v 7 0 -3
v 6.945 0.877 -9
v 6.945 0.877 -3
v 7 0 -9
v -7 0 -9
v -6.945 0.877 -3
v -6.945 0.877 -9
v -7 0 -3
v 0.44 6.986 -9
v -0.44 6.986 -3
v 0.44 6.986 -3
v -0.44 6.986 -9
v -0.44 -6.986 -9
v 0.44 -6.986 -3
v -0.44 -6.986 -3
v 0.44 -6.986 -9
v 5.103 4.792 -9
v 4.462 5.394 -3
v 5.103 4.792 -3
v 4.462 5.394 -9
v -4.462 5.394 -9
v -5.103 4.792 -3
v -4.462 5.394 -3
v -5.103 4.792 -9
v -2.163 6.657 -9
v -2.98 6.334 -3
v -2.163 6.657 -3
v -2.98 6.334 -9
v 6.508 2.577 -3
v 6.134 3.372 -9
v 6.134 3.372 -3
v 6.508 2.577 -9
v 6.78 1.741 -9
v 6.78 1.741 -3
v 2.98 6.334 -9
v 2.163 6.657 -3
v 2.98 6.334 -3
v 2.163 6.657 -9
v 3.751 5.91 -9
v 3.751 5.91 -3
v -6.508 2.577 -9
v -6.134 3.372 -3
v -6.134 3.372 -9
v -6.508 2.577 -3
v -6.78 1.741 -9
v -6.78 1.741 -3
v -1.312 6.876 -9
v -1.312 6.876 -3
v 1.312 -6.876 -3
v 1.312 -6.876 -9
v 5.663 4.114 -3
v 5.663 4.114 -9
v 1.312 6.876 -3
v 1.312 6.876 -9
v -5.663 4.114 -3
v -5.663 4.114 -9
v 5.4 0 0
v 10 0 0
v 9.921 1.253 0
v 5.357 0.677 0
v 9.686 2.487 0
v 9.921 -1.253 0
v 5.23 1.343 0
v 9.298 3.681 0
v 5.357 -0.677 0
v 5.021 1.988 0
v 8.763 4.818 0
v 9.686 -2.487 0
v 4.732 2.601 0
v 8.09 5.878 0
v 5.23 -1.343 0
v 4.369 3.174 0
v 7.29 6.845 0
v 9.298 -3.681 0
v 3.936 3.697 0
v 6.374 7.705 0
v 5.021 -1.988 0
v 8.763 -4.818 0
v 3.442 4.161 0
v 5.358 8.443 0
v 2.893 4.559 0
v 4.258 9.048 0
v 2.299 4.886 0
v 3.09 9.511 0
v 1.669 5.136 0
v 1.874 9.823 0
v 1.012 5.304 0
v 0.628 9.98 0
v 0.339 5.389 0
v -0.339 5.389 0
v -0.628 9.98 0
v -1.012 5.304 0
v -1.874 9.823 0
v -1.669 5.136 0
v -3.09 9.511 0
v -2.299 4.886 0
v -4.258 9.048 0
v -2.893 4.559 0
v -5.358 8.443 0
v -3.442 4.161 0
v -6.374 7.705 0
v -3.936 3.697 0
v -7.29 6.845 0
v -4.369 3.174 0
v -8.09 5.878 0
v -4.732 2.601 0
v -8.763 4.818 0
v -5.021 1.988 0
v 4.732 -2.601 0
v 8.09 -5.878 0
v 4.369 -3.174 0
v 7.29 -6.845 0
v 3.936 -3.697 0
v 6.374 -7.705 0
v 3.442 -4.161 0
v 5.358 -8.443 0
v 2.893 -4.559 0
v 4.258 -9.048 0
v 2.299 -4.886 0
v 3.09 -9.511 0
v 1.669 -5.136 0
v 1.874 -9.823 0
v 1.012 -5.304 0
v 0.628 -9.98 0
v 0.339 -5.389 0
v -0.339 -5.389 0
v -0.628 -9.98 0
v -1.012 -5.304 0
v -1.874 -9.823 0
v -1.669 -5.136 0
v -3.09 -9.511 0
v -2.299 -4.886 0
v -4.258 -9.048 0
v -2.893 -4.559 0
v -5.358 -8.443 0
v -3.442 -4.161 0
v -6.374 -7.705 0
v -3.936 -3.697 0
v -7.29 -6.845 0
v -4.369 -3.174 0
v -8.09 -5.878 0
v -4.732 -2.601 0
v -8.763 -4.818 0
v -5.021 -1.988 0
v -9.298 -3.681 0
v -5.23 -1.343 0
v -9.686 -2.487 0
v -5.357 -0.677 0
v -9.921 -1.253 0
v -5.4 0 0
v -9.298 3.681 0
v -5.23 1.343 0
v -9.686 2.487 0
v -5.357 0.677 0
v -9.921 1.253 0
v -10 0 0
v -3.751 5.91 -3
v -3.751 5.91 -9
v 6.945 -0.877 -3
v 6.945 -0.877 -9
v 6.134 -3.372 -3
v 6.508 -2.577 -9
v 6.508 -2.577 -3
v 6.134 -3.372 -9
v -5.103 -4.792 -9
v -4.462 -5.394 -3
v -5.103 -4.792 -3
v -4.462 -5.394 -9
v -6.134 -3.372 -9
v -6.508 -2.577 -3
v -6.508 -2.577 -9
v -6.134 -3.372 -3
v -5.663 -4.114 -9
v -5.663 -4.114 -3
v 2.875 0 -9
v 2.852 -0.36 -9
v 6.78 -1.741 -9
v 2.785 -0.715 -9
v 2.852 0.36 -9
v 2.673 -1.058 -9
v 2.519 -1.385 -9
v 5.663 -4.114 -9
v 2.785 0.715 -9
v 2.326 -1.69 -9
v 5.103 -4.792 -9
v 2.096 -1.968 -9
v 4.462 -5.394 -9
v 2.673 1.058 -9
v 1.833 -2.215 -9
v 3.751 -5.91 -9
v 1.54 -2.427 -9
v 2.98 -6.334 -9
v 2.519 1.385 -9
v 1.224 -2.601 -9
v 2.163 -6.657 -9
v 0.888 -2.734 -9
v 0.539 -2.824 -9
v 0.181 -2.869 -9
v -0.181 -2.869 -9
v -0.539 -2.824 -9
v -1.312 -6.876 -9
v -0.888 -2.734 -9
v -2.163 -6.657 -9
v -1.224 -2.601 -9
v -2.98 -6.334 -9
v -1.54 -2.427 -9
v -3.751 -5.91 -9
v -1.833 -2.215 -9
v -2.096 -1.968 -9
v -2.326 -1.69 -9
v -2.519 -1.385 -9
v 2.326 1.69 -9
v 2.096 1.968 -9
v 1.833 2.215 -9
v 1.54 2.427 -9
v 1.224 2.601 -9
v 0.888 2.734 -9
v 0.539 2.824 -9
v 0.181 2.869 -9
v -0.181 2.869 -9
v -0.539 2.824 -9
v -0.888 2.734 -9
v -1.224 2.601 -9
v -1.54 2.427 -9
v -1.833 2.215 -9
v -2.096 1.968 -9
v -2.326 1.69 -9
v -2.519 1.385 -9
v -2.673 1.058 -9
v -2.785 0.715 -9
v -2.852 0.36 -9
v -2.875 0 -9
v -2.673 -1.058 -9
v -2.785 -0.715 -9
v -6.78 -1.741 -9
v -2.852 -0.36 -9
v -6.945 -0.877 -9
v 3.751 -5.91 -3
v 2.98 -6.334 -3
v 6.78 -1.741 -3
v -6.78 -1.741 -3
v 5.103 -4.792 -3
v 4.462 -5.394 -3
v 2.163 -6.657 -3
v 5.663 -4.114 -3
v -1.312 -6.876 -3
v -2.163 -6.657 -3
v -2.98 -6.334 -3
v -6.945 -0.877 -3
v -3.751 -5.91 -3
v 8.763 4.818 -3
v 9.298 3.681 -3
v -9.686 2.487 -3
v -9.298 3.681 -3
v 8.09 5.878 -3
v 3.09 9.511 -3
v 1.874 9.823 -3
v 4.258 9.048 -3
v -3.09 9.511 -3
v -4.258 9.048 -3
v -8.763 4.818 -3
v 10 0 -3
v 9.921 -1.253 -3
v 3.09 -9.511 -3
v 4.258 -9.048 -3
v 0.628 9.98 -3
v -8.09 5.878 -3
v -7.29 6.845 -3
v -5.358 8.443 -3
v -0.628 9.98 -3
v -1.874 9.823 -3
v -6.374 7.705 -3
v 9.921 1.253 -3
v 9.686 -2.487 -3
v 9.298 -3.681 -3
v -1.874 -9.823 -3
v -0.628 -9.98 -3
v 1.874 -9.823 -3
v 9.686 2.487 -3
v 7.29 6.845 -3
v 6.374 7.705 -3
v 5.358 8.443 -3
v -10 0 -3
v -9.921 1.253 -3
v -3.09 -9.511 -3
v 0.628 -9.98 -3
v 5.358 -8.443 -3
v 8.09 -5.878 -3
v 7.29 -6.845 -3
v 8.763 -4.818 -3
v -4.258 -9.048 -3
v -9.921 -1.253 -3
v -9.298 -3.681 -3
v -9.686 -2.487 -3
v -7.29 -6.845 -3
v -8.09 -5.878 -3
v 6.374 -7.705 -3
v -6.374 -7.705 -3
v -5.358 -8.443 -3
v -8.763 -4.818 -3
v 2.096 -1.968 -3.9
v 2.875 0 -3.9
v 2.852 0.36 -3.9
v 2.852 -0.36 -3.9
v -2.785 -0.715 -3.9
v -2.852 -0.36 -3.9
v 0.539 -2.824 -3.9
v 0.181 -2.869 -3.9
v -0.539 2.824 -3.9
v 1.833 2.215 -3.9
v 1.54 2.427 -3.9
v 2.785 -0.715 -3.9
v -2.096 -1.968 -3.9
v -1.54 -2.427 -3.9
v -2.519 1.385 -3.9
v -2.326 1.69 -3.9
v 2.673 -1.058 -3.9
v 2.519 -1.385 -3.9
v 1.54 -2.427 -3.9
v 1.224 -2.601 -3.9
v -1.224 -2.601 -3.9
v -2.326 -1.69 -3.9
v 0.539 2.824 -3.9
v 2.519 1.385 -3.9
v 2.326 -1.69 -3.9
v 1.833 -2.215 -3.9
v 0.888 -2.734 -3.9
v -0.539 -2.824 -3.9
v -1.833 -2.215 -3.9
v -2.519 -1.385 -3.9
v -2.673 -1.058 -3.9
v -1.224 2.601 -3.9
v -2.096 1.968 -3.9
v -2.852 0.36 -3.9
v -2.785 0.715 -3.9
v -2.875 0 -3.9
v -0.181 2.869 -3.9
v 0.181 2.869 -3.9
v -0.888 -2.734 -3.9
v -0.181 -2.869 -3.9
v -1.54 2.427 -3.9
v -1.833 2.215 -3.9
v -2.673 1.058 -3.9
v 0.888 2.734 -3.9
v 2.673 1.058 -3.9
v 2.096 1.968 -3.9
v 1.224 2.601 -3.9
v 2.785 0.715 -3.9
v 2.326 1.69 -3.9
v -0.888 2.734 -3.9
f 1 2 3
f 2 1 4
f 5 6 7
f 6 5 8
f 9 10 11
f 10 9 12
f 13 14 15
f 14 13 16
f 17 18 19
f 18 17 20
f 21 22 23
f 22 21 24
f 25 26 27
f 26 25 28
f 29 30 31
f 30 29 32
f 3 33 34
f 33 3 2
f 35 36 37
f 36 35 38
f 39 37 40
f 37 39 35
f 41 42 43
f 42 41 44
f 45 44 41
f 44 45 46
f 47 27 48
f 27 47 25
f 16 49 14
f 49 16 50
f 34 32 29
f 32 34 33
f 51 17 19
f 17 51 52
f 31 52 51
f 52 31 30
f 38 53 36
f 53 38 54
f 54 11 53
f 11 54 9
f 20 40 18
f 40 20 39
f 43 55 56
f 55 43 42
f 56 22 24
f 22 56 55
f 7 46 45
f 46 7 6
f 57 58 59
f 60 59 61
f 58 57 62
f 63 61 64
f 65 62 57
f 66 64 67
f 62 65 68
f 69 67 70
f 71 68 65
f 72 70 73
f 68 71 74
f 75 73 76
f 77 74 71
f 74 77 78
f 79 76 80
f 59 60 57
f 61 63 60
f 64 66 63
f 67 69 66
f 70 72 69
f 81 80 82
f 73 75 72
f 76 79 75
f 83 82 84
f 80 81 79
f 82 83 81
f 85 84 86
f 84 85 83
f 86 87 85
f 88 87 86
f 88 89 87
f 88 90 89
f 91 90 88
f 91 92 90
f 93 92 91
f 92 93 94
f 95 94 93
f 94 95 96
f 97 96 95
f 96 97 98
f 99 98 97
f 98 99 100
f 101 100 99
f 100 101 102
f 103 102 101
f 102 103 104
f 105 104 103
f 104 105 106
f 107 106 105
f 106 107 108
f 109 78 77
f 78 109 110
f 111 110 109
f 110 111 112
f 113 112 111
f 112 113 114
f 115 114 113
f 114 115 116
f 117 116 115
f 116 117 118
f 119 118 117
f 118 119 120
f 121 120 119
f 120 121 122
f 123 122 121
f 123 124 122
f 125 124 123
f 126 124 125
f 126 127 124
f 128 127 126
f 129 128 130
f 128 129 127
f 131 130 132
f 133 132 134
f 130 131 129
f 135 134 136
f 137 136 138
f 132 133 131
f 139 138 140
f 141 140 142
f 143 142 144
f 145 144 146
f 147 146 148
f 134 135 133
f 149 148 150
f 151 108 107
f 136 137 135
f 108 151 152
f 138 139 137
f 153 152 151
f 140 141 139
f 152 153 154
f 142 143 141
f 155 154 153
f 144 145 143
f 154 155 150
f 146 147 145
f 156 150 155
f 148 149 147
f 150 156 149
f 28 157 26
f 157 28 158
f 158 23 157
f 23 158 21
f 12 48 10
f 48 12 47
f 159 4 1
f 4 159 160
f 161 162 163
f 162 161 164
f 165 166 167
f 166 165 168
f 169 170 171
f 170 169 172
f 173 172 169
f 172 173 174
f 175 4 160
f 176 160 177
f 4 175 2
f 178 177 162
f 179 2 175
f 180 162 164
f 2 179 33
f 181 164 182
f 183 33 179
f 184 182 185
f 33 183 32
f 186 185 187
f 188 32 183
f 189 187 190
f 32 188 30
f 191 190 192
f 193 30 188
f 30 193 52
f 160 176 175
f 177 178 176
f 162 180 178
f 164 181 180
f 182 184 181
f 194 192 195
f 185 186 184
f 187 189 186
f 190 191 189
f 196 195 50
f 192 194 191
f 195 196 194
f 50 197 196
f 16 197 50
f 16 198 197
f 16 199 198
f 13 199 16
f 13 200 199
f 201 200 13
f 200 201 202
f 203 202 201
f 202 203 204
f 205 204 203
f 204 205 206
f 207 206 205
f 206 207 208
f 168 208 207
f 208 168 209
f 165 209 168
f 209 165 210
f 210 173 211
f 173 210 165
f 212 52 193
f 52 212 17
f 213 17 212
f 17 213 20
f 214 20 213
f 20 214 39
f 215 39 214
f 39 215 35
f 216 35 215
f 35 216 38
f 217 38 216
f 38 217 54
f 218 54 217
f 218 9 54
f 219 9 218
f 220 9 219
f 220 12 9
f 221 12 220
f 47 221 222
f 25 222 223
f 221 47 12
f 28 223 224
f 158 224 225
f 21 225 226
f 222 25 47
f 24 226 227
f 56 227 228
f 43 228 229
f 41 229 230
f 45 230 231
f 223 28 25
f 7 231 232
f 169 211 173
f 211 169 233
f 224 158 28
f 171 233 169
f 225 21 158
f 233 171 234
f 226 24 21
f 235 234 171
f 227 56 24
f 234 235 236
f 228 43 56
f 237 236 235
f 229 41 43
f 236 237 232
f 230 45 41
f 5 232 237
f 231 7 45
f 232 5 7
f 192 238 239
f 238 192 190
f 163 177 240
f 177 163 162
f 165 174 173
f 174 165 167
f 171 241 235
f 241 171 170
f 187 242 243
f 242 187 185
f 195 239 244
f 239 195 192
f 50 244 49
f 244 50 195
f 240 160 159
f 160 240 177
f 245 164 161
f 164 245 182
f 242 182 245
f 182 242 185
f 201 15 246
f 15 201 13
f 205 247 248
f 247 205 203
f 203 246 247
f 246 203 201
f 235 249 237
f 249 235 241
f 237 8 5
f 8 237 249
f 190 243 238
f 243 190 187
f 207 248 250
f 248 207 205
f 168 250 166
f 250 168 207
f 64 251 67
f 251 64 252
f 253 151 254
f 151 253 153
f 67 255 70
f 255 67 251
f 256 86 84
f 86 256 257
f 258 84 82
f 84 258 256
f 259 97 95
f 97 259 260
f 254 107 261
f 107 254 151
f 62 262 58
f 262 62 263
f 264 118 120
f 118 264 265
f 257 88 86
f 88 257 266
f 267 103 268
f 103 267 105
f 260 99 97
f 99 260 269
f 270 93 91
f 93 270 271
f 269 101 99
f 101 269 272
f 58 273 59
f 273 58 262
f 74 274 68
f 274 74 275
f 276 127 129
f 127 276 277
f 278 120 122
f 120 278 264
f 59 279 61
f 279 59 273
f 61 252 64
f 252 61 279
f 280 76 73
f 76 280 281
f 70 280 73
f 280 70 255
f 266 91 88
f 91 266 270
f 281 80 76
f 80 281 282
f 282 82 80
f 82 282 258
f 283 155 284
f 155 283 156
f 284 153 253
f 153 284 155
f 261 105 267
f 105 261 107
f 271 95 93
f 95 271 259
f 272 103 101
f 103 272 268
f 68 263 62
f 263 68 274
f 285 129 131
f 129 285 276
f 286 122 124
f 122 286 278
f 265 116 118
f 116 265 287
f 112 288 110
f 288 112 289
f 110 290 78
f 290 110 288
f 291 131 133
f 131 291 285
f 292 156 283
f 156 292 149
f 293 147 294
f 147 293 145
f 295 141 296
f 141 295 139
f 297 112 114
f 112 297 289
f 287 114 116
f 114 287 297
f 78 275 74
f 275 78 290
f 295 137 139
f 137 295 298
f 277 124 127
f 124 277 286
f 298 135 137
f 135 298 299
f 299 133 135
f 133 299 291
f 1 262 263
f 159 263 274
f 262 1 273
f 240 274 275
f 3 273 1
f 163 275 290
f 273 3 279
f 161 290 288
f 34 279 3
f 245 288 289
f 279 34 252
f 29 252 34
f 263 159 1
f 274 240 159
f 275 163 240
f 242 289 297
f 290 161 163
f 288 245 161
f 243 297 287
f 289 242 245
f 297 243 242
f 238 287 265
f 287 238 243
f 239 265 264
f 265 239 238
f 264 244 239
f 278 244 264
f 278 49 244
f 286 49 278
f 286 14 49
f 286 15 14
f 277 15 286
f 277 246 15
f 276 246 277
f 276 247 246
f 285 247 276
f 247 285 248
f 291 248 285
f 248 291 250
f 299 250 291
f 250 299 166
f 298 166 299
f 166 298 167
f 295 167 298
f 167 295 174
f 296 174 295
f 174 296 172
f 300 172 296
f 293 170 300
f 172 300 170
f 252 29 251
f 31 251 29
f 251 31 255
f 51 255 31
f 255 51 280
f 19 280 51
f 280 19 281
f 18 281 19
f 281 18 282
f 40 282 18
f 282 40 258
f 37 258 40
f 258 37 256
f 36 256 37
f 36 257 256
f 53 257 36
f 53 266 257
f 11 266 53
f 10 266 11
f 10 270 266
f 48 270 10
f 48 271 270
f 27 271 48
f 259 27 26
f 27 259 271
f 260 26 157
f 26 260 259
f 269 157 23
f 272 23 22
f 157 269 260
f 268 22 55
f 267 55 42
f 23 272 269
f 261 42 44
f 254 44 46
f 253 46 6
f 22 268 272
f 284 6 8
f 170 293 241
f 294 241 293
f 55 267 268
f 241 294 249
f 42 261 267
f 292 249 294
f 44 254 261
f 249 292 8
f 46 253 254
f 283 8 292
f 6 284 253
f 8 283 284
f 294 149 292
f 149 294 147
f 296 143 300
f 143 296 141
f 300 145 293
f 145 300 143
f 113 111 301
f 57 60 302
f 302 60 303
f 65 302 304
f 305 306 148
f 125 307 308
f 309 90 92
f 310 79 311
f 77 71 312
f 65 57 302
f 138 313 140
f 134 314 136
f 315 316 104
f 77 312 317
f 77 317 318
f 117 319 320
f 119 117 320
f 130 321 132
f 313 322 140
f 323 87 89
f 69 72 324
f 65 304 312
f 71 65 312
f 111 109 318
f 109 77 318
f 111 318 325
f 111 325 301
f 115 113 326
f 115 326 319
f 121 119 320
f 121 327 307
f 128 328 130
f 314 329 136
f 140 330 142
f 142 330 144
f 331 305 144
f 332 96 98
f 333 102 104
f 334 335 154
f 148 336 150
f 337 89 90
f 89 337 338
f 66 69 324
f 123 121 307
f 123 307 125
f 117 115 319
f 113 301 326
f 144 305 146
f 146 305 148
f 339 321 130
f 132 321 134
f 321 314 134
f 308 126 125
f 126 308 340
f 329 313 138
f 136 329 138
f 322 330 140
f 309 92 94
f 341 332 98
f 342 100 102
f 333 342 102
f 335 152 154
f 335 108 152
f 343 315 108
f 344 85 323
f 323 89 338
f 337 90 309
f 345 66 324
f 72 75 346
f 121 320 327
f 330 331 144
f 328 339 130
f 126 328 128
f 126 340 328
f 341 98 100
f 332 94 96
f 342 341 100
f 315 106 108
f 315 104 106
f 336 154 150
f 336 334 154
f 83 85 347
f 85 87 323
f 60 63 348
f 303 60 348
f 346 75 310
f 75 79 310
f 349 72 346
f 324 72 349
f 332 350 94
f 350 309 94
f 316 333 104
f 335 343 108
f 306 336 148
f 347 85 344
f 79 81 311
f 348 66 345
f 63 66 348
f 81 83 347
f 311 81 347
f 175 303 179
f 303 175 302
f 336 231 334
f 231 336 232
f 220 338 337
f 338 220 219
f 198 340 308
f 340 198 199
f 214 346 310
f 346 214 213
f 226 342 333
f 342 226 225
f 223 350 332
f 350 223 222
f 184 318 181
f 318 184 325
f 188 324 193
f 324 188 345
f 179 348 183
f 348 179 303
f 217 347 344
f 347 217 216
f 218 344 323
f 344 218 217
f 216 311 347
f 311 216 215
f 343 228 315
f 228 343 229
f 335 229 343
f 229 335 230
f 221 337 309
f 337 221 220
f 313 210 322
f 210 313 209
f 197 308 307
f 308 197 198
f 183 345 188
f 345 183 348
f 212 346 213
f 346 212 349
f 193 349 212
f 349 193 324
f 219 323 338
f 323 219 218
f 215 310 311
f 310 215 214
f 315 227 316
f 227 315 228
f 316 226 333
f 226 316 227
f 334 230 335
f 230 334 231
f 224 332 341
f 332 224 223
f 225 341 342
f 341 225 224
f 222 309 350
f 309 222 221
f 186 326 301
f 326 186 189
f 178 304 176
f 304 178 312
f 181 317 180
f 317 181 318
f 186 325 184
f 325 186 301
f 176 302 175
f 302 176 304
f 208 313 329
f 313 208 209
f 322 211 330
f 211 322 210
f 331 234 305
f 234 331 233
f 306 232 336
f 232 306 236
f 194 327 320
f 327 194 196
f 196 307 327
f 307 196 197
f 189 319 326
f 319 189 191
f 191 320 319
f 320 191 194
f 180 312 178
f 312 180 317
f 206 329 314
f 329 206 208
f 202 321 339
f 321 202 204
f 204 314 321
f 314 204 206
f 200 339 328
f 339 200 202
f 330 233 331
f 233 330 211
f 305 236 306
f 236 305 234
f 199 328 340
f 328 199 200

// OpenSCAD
$fn = 50;


difference() {
	union() {
		translate(v = [0, 0, -9.0000000000]) {
			cylinder(h = 9, r = 7.0000000000);
		}
		translate(v = [0, 0, -3.0000000000]) {
			cylinder(h = 3, r = 10.0000000000);
		}
	}
	union() {
		translate(v = [0, 0, 0]) {
			rotate(a = [0, 0, 0]) {
				difference() {
					union() {
						#translate(v = [0, 0, -9.0000000000]) {
							cylinder(h = 9, r = 2.6000000000);
						}
						#translate(v = [0, 0, -3.9000000000]) {
							cylinder(h = 3.9000000000, r1 = 2.8750000000, r2 = 5.4000000000);
						}
						#translate(v = [0, 0, -9.0000000000]) {
							cylinder(h = 9, r = 2.8750000000);
						}
						#translate(v = [0, 0, -9.0000000000]) {
							cylinder(h = 9, r = 2.6000000000);
						}
					}
					union();
				}
			}
		}
	}
}
